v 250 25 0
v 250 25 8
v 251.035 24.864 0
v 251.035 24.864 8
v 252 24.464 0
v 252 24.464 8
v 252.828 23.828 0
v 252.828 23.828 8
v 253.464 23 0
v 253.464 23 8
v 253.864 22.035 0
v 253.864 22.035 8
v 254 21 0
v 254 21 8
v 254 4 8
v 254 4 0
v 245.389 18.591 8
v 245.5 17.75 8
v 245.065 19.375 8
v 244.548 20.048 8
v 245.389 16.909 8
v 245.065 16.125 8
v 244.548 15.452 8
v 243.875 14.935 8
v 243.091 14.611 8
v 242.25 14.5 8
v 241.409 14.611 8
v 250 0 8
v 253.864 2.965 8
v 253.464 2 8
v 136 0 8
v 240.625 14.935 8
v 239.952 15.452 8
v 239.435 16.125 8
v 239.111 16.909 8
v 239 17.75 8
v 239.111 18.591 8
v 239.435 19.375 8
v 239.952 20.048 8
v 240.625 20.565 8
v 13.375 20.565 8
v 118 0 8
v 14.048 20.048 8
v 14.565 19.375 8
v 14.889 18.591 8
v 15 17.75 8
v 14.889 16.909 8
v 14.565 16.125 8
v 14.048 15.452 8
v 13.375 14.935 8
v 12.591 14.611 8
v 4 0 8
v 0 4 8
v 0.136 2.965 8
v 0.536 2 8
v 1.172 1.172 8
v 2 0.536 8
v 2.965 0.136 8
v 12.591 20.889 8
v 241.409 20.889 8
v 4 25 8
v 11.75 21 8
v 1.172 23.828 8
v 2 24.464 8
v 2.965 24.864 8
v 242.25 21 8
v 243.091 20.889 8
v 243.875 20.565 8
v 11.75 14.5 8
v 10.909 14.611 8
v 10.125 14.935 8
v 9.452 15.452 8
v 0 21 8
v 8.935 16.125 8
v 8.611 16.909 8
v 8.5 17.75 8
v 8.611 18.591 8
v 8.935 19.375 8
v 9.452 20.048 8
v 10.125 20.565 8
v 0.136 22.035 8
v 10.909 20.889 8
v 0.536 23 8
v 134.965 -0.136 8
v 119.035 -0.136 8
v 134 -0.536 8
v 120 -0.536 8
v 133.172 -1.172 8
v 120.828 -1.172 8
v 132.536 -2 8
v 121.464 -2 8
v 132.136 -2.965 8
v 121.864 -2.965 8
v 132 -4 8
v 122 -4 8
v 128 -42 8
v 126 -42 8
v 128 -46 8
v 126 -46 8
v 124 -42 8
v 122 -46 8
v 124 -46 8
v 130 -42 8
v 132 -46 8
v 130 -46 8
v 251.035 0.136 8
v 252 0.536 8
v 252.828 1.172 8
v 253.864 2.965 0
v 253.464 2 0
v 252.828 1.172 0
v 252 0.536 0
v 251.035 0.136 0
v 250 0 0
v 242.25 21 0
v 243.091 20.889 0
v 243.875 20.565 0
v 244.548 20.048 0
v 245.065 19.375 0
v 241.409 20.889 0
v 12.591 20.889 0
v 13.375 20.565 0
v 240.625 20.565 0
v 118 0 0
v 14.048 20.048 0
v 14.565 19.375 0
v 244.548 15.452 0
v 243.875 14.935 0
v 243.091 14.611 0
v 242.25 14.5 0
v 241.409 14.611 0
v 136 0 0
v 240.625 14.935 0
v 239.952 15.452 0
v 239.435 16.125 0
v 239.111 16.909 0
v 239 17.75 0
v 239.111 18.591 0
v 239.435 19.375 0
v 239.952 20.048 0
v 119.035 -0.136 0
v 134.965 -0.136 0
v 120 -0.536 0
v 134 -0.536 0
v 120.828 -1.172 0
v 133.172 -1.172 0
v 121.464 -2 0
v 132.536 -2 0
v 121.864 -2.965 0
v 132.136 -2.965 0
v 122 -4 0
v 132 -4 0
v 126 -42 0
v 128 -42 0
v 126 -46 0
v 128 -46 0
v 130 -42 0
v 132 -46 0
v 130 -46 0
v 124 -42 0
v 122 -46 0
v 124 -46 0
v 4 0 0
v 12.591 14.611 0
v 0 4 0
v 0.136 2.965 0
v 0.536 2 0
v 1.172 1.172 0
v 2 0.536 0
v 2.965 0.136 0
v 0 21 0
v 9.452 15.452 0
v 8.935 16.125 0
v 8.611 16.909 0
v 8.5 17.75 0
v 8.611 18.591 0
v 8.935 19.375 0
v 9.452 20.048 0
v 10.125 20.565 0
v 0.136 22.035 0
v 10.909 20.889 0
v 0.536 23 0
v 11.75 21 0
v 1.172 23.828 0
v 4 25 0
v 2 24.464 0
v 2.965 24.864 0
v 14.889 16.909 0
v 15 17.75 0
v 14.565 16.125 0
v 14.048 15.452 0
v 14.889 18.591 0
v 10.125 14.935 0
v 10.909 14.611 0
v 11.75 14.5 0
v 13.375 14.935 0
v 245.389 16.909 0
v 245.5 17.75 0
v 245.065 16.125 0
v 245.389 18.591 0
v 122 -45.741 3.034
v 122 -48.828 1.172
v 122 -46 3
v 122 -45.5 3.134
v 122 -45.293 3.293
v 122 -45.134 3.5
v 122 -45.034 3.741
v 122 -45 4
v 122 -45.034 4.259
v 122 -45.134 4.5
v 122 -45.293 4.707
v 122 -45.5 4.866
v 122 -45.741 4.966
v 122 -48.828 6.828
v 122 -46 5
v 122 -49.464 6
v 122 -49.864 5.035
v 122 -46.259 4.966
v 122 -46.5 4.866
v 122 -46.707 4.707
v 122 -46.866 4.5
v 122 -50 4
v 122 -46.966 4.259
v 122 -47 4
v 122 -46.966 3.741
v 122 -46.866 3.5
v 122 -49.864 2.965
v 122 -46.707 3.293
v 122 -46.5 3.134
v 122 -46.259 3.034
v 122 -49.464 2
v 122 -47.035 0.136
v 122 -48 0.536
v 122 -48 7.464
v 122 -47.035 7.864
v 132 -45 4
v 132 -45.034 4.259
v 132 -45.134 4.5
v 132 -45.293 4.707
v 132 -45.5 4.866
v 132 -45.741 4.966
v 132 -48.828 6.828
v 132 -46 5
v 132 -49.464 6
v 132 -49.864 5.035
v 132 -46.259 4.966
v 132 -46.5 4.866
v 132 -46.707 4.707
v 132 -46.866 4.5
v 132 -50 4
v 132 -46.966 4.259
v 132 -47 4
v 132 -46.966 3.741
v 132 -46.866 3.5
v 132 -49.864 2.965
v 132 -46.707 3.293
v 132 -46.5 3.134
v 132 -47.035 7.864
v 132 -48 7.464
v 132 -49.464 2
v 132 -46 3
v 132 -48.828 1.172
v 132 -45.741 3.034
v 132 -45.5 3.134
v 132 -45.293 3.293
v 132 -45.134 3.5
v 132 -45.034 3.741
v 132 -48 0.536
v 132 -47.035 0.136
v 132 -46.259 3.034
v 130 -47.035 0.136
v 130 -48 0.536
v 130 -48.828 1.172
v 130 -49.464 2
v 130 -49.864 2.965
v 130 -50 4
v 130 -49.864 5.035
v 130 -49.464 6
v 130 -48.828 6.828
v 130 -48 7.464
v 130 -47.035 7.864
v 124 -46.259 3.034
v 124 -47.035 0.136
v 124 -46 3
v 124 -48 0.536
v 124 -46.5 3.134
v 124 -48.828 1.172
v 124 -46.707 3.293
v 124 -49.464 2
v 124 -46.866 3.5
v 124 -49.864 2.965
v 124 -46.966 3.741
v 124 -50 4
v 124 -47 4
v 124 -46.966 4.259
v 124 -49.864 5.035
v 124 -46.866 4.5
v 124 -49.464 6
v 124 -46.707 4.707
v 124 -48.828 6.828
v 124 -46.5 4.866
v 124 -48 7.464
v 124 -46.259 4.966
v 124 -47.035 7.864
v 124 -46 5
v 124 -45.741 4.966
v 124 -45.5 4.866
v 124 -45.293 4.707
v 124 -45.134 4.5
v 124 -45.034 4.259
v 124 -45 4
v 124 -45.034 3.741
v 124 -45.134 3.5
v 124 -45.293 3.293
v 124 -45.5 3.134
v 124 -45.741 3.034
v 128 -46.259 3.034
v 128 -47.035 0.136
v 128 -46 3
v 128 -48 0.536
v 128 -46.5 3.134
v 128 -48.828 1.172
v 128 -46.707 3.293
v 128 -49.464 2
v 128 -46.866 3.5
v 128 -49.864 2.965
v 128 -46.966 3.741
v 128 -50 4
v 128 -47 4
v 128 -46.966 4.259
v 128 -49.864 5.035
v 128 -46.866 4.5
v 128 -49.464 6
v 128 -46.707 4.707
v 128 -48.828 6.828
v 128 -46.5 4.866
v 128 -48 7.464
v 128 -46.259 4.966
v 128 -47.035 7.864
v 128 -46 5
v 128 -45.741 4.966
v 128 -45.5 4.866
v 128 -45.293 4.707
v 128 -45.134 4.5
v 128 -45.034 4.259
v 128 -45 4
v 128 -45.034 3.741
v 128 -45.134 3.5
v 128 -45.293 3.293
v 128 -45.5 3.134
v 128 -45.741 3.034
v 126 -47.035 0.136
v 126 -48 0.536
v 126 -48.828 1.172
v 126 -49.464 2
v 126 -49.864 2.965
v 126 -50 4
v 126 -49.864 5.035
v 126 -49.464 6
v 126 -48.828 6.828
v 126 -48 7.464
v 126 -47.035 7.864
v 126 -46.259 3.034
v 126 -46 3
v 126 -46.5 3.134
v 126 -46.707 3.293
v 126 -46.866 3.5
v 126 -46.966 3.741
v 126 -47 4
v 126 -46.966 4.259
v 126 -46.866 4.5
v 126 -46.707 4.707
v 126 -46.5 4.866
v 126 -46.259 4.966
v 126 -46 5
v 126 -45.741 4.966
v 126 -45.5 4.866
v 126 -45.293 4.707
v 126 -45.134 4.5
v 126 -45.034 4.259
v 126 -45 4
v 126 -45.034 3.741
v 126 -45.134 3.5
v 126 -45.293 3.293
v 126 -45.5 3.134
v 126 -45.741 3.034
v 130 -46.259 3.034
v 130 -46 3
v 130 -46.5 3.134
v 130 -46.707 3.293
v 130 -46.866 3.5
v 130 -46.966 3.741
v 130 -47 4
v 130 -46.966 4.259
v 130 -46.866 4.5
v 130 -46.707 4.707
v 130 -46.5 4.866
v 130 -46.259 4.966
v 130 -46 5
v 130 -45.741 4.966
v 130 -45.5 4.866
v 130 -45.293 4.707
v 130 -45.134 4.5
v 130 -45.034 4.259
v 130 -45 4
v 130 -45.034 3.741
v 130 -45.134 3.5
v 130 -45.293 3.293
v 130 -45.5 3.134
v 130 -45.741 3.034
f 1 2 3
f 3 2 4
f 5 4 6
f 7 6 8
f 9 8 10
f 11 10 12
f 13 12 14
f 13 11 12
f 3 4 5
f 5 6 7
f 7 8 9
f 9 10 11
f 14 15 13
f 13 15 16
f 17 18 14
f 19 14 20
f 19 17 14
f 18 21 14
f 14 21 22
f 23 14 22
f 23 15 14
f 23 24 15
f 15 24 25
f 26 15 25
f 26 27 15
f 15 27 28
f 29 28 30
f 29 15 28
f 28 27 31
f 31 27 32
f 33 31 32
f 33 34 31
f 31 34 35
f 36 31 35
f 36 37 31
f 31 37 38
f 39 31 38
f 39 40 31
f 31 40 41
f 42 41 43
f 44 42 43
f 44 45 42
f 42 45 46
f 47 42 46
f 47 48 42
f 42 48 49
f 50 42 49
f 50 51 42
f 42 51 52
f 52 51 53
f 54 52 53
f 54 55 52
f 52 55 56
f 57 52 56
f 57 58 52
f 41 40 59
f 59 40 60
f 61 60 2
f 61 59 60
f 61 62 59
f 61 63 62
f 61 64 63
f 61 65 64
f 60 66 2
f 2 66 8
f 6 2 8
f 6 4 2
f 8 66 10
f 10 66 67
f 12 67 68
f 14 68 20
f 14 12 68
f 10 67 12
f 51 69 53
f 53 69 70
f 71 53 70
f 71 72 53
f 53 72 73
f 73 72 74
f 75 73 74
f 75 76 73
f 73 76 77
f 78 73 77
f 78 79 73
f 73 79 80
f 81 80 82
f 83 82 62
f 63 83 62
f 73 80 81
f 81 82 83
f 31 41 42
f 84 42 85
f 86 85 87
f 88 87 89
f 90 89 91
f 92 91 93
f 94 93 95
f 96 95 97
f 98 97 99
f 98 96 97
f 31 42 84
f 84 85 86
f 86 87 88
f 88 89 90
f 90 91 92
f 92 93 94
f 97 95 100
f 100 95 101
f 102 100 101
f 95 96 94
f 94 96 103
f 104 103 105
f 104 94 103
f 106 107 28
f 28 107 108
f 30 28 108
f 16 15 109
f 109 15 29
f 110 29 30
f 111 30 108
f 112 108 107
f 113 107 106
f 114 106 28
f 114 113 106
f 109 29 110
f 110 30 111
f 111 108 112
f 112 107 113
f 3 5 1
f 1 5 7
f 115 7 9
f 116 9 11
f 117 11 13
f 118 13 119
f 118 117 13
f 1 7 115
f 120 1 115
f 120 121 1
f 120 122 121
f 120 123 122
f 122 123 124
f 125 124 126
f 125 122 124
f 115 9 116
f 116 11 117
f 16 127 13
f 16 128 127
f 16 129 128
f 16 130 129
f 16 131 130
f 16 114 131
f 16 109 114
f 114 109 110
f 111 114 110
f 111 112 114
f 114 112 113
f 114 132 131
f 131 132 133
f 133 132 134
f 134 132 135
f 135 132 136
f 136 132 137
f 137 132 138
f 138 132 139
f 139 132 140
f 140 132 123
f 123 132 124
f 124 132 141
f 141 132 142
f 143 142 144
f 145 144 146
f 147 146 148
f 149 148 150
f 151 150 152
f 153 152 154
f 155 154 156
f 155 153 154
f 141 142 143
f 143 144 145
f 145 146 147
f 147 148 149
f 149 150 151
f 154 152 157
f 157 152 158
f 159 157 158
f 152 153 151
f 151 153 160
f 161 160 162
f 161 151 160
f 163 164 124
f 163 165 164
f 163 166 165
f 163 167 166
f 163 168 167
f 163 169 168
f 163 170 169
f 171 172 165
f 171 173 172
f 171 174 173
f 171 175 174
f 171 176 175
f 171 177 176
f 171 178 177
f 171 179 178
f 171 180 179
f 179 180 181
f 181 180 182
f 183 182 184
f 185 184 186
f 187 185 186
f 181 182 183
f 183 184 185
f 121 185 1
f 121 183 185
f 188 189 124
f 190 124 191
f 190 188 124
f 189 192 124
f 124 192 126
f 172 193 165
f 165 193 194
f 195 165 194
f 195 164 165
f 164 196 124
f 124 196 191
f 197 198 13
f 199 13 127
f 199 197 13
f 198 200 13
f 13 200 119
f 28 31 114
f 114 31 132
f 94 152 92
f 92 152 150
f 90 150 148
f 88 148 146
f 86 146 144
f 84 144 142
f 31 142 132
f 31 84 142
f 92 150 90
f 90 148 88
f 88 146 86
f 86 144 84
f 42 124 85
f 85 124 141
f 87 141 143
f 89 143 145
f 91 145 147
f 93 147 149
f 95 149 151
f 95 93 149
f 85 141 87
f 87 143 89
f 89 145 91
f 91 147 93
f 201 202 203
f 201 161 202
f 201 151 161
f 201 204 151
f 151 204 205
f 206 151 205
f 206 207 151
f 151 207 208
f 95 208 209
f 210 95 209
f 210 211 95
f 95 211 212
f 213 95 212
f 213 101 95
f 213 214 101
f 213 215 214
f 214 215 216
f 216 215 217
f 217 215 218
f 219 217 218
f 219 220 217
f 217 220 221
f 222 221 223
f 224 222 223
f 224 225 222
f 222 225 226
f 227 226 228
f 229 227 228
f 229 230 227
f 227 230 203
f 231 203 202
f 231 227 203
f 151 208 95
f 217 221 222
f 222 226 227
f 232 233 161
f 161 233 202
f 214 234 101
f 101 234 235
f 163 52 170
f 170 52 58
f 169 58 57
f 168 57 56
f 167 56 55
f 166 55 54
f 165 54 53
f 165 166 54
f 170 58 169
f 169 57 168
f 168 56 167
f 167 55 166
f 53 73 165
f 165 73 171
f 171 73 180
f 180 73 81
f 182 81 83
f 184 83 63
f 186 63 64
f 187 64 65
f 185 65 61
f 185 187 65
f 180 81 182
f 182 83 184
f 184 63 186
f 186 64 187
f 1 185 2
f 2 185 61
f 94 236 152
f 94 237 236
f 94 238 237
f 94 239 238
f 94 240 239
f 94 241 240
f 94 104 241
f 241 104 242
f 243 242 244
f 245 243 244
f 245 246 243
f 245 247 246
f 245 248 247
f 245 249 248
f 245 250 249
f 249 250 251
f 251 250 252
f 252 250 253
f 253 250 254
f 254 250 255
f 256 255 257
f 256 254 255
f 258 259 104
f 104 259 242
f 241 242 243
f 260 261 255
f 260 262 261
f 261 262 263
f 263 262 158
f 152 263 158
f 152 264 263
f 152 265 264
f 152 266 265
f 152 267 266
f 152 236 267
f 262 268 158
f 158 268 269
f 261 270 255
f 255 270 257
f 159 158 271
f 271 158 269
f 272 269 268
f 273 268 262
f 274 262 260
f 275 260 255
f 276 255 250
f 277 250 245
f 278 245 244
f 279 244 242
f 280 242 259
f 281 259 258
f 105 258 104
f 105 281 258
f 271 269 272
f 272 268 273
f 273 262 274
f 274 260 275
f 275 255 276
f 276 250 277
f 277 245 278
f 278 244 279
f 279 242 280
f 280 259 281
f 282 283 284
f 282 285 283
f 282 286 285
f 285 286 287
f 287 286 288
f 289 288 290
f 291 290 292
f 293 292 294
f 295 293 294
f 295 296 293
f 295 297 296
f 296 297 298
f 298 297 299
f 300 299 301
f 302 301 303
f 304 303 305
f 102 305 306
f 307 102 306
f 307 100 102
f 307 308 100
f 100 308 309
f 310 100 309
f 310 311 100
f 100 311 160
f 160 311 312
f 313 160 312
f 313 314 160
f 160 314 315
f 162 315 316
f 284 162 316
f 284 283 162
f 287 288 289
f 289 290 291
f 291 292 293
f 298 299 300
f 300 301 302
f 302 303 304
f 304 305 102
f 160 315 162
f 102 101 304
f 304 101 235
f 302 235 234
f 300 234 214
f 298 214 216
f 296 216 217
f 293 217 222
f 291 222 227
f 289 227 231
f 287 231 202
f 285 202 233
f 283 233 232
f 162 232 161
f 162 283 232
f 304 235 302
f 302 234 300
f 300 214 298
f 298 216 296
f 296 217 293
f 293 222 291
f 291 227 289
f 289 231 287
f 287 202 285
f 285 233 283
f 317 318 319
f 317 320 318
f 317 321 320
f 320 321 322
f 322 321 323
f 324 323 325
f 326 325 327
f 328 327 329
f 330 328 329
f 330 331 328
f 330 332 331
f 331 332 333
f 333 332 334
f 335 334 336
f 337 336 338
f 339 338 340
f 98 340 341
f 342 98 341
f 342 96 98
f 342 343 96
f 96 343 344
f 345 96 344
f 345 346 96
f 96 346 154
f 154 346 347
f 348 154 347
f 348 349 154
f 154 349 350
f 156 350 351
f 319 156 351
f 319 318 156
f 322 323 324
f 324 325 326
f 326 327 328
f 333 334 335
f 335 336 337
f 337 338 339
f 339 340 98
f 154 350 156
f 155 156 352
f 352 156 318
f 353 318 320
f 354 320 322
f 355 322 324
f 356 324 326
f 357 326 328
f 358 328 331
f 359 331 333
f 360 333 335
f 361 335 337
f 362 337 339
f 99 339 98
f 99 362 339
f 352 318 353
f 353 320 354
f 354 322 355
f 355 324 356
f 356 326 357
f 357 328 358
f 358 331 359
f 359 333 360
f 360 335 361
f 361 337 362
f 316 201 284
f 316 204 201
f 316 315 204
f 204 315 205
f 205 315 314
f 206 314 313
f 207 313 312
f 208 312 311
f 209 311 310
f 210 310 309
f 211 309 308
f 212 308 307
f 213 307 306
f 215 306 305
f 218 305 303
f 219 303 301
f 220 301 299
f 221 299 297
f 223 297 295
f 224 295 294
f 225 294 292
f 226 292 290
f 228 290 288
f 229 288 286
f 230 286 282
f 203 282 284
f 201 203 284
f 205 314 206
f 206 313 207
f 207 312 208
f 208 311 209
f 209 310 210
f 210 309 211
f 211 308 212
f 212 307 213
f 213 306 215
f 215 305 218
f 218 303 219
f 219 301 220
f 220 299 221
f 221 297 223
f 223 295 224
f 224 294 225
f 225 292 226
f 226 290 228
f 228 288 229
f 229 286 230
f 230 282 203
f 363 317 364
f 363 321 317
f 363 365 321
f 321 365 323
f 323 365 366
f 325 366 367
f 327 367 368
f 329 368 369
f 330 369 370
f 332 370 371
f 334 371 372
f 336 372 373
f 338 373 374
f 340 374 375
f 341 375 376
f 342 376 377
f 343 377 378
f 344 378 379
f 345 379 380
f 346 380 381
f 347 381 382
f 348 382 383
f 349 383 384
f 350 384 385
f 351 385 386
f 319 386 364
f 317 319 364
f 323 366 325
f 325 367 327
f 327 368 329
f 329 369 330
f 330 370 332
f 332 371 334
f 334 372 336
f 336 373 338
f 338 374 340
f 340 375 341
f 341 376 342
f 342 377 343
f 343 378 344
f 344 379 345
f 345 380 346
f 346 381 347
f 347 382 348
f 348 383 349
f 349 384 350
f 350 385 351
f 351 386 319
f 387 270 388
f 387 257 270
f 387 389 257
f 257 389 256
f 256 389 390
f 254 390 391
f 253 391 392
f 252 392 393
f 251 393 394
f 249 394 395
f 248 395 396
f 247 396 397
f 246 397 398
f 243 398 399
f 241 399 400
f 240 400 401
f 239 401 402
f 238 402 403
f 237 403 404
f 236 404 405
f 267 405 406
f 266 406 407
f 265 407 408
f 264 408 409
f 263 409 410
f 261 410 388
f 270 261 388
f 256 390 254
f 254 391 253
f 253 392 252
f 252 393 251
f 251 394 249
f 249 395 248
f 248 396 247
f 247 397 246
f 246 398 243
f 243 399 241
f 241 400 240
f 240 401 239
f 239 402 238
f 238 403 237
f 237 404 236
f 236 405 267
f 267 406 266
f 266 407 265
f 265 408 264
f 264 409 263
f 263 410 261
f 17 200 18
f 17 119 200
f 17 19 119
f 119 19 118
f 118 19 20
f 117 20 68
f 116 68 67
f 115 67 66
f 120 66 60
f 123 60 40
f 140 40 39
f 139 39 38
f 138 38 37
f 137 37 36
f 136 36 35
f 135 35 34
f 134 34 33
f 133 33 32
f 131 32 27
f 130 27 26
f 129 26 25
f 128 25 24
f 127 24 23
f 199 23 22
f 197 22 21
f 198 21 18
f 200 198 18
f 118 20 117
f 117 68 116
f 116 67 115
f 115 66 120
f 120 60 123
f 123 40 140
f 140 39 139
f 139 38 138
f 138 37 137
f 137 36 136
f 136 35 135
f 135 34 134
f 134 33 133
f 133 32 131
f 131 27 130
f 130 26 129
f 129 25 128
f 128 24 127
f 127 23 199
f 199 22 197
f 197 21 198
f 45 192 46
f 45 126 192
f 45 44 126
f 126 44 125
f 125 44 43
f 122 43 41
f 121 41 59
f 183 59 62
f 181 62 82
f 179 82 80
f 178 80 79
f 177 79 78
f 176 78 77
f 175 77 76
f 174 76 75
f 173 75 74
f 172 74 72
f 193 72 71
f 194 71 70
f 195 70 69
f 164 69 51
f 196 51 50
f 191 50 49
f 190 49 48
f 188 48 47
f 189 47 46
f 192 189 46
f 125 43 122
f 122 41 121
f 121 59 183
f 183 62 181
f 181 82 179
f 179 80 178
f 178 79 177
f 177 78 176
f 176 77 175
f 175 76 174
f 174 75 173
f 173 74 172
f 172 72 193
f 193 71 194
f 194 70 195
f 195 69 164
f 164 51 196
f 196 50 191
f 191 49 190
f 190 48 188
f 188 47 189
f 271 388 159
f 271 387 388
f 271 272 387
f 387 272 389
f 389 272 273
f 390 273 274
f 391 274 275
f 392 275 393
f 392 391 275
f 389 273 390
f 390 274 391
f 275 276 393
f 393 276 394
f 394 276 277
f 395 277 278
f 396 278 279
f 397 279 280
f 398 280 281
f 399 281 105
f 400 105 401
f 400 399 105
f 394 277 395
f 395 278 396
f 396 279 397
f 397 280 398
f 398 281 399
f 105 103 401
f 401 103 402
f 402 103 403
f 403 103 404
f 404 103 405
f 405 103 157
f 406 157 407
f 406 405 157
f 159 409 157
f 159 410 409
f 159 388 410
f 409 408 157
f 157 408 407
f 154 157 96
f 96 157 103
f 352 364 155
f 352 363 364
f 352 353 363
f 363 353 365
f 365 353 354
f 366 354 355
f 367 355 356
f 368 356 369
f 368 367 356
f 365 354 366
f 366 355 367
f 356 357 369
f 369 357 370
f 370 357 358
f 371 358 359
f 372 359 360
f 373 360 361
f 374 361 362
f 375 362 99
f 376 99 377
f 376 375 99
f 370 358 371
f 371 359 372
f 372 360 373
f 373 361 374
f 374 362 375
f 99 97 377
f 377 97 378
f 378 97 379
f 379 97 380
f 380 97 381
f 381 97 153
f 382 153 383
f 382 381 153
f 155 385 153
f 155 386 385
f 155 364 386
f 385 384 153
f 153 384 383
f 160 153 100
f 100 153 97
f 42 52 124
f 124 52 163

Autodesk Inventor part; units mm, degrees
ref_plane "YZ Plane" through (0, 0, 0) normal (1, 0, 0) x (0, 1, 0)
ref_plane "XZ Plane" through (0, 0, 0) normal (0, 1, 0) x (-1, 0, 0)
ref_plane "XY Plane" through (0, 0, 0) normal (0, 0, 1) x (1, 0, 0)
sketch "Sketch1" plane through (0, 0, 0) normal (0, 0, 1) x (1, 0, 0)
  line L0 (254, 0) -> (254, 25)
  line L1 (254, 25) -> (0, 25)
  line L2 (0, 25) -> (0, 0)
  line L3 (0, 25) -> (0, 21) construction
  line L4 (0, 21) -> (8.5, 21) construction
  line L5 (8.5, 21) -> (11.75, 21) construction
  line L6 (11.75, 21) -> (11.75, 17.75) construction
  circle A0 centre (11.75, 17.75) radius 3.25
  line L7 (254, 25) -> (254, 21) construction
  line L8 (254, 21) -> (245.5, 21) construction
  line L9 (245.5, 21) -> (245.5, 17.75) construction
  line L10 (245.5, 17.75) -> (242.25, 17.75) construction
  circle A1 centre (242.25, 17.75) radius 3.25
  line L11 (132, -50) -> (132, 0)
  line L12 (122, -50) -> (122, 0)
  line L13 (0, 0) -> (122, 0)
  line L14 (132, 0) -> (254, 0)
  line L15 (122, -50) -> (124, -50)
  line L16 (124, -50) -> (124, -42)
  line L17 (124, -42) -> (126, -42)
  line L18 (126, -42) -> (126, -50)
  line L19 (126, -50) -> (128, -50)
  line L20 (128, -50) -> (128, -42)
  line L21 (128, -42) -> (130, -42)
  line L22 (130, -42) -> (130, -50)
  line L23 (130, -50) -> (132, -50)
  dimension "d0" = 254
  dimension "d1" = 25
  dimension "d2" = 4
  dimension "d3" = 8.5
  dimension "d4" = 3.25
  dimension "d5" = 3.25
  dimension "d6" = 4
  dimension "d7" = 8.5
  dimension "d8" = 3.25
  dimension "d9" = 3.25
  dimension "d13" = 122
  dimension "d14" = 242.25
  dimension "d16" = 2
  dimension "d17" = 8
  dimension "d18" = 2
  dimension "d19" = 8
  dimension "d20" = 2
  dimension "d21" = 8
  dimension "d22" = 2
  dimension "d23" = 124
  dimension "d24" = 63
extrude "Extrusion1" add sketch "Sketch1" along normal blind 8
sketch "Sketch3" plane through (132, -50, 0) normal (1, 0, 0) x (0, 0, -1)
  line L0 (0, 0) -> (-8, 0) projected
  line L1 (0, 8) -> (-8, 8) projected
  line L2 (0, 0) -> (-8, 0) construction
  line L3 (-4, 0) -> (-4, 8) construction
  circle A0 centre (-4, 4) radius 1
  point P0 (0, 50)
  point P1 (-12, 0)
  point P2 (-12, 8)
  dimension "d39" = 2
extrude "Extrusion3" cut sketch "Sketch3" against normal blind 46.75
fillet "Fillet2" radius 4 6 edges at (127, -50, 8) (127, -50, 0) (123, -50, 0) (123, -50, 8) (131, -50, 0) (131, -50, 8)
fillet "Fillet4" radius 4 6 edges at (0, 25, 4) (0, 0, 4) (122, 0, 4) (132, 0, 4) (254, 0, 4) (254, 25, 4)
properties part number "WebcamBase"
